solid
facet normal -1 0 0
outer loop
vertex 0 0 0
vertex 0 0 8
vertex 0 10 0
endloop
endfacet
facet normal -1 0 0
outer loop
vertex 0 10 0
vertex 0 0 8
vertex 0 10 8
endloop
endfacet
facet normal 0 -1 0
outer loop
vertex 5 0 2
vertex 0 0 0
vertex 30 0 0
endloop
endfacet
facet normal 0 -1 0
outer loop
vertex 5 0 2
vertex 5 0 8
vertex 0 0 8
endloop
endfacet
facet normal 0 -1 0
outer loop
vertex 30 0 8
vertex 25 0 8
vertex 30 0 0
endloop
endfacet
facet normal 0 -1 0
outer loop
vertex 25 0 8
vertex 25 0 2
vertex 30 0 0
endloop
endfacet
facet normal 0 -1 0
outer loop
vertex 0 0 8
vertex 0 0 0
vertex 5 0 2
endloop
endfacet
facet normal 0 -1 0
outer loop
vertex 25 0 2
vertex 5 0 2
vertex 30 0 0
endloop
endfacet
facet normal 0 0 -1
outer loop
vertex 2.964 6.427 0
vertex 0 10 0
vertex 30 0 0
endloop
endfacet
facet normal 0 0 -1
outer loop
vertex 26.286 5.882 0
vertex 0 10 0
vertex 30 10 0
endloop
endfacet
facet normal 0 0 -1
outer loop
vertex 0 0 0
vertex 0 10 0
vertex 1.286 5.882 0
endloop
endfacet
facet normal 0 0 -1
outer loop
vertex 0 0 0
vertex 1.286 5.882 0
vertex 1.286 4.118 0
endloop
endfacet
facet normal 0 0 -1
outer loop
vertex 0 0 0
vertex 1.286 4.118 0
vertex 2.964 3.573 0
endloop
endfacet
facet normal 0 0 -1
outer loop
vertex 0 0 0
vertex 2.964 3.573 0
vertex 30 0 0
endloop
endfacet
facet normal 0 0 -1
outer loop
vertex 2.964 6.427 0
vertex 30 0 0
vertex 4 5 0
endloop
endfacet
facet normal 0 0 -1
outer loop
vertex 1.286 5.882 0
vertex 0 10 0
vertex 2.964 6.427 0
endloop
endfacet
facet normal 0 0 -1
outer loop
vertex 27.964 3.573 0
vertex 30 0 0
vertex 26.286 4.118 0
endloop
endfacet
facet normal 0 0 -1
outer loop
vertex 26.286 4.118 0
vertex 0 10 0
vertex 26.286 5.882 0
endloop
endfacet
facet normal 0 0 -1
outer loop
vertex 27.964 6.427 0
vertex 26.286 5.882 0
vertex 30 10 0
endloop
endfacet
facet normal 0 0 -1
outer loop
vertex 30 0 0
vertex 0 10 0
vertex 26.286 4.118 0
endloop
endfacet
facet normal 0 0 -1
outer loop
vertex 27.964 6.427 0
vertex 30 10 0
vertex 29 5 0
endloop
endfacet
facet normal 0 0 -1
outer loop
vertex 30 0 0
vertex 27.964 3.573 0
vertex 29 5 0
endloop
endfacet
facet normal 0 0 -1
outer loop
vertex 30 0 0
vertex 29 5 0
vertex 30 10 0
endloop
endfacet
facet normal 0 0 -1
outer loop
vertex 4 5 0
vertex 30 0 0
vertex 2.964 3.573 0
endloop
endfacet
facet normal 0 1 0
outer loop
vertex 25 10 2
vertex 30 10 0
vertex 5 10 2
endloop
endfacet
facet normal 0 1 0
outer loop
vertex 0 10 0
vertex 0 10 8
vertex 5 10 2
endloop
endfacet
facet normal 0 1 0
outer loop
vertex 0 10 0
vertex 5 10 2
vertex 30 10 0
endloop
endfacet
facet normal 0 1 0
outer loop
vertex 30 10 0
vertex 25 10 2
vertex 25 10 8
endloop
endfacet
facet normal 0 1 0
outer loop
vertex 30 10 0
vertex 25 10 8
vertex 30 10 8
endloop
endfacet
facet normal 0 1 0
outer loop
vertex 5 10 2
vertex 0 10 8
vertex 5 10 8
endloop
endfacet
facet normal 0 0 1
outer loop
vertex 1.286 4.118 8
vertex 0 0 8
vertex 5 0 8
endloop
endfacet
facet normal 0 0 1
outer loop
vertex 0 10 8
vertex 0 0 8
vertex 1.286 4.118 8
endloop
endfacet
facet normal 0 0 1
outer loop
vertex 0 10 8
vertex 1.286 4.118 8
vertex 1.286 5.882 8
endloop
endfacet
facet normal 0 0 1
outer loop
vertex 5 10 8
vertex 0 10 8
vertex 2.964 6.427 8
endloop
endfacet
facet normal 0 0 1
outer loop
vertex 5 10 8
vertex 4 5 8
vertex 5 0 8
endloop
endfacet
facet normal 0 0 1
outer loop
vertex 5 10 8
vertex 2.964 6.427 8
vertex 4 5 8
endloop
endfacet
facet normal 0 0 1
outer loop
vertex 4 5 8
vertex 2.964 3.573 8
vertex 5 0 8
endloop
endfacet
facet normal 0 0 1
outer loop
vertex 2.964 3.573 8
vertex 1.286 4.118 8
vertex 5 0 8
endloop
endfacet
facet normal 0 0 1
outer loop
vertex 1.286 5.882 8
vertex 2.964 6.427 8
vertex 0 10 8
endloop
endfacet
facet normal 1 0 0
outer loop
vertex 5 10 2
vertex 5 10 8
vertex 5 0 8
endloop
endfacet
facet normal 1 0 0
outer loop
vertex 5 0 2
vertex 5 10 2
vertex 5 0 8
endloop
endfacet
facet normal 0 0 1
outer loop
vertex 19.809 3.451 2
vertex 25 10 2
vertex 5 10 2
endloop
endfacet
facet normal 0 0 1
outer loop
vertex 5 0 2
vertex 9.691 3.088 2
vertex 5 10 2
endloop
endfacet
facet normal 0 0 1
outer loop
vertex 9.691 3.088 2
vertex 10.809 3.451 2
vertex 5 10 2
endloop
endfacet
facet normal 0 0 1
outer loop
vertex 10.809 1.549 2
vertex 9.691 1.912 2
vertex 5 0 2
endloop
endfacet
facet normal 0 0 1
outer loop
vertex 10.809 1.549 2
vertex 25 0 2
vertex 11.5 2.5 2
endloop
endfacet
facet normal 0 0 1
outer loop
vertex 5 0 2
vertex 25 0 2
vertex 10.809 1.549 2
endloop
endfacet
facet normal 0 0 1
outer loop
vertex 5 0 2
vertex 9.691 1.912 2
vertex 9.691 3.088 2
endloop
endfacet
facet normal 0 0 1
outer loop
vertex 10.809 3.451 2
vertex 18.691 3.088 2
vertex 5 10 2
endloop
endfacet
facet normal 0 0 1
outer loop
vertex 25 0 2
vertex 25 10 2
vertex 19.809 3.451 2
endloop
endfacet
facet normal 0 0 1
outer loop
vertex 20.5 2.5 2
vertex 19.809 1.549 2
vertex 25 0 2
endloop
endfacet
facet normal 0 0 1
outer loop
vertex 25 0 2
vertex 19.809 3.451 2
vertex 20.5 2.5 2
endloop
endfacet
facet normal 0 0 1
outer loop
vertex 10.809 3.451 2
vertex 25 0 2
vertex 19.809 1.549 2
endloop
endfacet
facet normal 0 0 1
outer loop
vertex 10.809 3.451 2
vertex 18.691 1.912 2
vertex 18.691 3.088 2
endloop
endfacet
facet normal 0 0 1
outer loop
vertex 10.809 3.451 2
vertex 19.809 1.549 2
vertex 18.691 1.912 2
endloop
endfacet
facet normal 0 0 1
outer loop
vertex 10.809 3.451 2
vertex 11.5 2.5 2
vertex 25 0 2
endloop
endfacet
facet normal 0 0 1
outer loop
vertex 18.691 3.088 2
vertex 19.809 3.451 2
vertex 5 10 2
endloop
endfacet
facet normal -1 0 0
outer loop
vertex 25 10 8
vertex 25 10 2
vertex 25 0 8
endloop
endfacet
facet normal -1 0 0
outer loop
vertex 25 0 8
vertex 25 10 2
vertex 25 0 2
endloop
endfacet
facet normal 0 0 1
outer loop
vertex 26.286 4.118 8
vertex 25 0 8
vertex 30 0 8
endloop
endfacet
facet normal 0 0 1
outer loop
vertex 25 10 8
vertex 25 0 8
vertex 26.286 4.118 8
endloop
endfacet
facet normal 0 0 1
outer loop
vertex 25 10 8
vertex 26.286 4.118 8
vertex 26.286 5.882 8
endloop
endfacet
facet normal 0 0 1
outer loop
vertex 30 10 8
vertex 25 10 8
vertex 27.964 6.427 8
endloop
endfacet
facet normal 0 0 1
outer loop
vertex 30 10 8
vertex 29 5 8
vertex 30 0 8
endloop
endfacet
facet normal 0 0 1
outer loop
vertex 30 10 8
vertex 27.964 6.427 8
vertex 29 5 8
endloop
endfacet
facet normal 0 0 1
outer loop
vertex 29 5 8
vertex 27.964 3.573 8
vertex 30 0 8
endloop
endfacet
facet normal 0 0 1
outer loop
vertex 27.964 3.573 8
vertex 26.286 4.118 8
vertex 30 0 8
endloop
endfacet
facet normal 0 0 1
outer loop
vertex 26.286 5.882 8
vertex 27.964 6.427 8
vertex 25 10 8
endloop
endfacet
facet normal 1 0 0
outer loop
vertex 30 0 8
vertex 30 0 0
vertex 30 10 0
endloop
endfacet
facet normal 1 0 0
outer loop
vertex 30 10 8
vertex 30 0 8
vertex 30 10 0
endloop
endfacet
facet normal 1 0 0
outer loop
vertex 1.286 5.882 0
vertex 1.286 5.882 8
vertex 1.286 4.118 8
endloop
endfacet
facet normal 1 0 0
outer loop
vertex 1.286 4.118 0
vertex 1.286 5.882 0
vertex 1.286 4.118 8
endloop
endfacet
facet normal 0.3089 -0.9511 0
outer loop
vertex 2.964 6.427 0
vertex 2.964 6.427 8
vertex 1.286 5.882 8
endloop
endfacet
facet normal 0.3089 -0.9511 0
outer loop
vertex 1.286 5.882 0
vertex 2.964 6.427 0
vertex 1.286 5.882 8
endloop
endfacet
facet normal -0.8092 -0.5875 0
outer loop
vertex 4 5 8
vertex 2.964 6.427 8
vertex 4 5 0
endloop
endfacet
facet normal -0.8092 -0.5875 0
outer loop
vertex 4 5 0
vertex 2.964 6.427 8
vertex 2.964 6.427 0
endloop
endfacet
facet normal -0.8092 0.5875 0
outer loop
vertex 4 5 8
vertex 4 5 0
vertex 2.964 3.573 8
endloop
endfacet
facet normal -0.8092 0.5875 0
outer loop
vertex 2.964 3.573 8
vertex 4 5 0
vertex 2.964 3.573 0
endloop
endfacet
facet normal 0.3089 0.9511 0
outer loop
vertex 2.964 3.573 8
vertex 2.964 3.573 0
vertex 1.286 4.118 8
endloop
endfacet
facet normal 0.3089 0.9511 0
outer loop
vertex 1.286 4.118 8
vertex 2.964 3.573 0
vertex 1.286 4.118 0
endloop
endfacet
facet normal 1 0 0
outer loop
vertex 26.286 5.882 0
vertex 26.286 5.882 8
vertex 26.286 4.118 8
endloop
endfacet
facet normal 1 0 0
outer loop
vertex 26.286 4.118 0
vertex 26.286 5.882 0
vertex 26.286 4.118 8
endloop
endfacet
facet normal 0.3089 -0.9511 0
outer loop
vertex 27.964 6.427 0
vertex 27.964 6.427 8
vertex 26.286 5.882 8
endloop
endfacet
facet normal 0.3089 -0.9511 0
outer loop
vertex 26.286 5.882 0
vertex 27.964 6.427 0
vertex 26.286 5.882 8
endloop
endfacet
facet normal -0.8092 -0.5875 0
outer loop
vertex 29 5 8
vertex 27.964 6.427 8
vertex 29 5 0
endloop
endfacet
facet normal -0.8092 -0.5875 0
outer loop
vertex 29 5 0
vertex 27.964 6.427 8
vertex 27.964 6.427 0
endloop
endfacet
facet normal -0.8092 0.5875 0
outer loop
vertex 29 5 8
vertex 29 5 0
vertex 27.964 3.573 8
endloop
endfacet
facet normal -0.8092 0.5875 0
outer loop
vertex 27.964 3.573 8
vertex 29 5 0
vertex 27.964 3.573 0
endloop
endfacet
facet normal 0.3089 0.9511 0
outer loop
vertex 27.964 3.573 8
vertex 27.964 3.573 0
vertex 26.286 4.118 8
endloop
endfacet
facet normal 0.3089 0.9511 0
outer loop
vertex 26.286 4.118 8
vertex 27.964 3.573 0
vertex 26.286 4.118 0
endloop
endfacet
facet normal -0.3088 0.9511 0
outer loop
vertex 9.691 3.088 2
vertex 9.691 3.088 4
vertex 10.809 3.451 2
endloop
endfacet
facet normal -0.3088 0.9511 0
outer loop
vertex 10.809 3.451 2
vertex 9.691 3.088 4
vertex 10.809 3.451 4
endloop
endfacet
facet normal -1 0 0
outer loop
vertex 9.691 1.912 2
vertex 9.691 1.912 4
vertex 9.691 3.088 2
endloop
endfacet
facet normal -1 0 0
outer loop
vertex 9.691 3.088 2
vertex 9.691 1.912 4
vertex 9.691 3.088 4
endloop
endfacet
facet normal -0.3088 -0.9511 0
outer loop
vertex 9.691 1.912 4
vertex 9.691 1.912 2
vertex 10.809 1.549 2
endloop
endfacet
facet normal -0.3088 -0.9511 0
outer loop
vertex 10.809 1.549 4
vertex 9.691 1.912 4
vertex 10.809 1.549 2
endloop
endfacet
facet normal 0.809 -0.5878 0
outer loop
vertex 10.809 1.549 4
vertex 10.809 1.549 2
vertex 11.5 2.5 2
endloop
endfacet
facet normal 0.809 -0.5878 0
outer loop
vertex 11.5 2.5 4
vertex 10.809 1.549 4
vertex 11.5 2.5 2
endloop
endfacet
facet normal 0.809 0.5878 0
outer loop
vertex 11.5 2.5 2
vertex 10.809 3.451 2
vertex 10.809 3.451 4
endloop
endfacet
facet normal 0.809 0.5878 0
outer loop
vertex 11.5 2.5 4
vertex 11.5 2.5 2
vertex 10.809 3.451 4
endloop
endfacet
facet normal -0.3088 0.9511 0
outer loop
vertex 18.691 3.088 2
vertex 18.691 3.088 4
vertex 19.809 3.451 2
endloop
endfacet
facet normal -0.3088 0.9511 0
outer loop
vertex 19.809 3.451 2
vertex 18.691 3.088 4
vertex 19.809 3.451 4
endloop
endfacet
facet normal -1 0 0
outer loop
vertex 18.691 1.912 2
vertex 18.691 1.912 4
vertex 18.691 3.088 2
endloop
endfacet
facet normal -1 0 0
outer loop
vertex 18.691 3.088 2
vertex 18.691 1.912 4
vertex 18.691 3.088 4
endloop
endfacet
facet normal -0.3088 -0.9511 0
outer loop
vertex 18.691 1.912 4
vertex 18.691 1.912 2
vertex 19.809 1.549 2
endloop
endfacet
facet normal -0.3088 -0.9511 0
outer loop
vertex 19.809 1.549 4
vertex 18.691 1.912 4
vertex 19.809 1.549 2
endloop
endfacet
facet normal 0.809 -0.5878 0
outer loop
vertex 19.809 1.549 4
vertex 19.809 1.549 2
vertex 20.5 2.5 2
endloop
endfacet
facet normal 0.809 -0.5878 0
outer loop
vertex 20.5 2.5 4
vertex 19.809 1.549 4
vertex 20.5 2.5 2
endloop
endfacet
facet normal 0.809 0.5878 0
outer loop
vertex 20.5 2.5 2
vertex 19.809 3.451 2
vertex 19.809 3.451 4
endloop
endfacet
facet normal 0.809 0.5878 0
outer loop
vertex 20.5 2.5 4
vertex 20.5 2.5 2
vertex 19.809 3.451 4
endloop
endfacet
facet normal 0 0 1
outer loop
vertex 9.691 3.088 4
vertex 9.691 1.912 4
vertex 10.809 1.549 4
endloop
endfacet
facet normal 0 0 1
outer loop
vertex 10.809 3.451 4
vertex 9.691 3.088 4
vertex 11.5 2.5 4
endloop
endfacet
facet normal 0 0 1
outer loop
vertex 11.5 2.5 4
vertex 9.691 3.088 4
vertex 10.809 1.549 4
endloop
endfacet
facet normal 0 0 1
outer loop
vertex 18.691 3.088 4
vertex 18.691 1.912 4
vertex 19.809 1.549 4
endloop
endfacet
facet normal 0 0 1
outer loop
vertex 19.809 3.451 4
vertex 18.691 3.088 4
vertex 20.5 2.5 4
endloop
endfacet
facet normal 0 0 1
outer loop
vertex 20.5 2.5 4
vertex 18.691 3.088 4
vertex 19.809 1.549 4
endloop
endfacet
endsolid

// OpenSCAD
difference(){
	cube([30,10,8]);
	translate([5,0,2]) cube([20,10,6]);
	translate([2.5,5,0])cylinder(r=1.5,h=8);
	translate([30-2.5,5,0])cylinder(r=1.5,h=8);

}

translate([10.5,2.5,0])cylinder(r=1,h=4);
translate([19.5,2.5,0])cylinder(r=1,h=4);
